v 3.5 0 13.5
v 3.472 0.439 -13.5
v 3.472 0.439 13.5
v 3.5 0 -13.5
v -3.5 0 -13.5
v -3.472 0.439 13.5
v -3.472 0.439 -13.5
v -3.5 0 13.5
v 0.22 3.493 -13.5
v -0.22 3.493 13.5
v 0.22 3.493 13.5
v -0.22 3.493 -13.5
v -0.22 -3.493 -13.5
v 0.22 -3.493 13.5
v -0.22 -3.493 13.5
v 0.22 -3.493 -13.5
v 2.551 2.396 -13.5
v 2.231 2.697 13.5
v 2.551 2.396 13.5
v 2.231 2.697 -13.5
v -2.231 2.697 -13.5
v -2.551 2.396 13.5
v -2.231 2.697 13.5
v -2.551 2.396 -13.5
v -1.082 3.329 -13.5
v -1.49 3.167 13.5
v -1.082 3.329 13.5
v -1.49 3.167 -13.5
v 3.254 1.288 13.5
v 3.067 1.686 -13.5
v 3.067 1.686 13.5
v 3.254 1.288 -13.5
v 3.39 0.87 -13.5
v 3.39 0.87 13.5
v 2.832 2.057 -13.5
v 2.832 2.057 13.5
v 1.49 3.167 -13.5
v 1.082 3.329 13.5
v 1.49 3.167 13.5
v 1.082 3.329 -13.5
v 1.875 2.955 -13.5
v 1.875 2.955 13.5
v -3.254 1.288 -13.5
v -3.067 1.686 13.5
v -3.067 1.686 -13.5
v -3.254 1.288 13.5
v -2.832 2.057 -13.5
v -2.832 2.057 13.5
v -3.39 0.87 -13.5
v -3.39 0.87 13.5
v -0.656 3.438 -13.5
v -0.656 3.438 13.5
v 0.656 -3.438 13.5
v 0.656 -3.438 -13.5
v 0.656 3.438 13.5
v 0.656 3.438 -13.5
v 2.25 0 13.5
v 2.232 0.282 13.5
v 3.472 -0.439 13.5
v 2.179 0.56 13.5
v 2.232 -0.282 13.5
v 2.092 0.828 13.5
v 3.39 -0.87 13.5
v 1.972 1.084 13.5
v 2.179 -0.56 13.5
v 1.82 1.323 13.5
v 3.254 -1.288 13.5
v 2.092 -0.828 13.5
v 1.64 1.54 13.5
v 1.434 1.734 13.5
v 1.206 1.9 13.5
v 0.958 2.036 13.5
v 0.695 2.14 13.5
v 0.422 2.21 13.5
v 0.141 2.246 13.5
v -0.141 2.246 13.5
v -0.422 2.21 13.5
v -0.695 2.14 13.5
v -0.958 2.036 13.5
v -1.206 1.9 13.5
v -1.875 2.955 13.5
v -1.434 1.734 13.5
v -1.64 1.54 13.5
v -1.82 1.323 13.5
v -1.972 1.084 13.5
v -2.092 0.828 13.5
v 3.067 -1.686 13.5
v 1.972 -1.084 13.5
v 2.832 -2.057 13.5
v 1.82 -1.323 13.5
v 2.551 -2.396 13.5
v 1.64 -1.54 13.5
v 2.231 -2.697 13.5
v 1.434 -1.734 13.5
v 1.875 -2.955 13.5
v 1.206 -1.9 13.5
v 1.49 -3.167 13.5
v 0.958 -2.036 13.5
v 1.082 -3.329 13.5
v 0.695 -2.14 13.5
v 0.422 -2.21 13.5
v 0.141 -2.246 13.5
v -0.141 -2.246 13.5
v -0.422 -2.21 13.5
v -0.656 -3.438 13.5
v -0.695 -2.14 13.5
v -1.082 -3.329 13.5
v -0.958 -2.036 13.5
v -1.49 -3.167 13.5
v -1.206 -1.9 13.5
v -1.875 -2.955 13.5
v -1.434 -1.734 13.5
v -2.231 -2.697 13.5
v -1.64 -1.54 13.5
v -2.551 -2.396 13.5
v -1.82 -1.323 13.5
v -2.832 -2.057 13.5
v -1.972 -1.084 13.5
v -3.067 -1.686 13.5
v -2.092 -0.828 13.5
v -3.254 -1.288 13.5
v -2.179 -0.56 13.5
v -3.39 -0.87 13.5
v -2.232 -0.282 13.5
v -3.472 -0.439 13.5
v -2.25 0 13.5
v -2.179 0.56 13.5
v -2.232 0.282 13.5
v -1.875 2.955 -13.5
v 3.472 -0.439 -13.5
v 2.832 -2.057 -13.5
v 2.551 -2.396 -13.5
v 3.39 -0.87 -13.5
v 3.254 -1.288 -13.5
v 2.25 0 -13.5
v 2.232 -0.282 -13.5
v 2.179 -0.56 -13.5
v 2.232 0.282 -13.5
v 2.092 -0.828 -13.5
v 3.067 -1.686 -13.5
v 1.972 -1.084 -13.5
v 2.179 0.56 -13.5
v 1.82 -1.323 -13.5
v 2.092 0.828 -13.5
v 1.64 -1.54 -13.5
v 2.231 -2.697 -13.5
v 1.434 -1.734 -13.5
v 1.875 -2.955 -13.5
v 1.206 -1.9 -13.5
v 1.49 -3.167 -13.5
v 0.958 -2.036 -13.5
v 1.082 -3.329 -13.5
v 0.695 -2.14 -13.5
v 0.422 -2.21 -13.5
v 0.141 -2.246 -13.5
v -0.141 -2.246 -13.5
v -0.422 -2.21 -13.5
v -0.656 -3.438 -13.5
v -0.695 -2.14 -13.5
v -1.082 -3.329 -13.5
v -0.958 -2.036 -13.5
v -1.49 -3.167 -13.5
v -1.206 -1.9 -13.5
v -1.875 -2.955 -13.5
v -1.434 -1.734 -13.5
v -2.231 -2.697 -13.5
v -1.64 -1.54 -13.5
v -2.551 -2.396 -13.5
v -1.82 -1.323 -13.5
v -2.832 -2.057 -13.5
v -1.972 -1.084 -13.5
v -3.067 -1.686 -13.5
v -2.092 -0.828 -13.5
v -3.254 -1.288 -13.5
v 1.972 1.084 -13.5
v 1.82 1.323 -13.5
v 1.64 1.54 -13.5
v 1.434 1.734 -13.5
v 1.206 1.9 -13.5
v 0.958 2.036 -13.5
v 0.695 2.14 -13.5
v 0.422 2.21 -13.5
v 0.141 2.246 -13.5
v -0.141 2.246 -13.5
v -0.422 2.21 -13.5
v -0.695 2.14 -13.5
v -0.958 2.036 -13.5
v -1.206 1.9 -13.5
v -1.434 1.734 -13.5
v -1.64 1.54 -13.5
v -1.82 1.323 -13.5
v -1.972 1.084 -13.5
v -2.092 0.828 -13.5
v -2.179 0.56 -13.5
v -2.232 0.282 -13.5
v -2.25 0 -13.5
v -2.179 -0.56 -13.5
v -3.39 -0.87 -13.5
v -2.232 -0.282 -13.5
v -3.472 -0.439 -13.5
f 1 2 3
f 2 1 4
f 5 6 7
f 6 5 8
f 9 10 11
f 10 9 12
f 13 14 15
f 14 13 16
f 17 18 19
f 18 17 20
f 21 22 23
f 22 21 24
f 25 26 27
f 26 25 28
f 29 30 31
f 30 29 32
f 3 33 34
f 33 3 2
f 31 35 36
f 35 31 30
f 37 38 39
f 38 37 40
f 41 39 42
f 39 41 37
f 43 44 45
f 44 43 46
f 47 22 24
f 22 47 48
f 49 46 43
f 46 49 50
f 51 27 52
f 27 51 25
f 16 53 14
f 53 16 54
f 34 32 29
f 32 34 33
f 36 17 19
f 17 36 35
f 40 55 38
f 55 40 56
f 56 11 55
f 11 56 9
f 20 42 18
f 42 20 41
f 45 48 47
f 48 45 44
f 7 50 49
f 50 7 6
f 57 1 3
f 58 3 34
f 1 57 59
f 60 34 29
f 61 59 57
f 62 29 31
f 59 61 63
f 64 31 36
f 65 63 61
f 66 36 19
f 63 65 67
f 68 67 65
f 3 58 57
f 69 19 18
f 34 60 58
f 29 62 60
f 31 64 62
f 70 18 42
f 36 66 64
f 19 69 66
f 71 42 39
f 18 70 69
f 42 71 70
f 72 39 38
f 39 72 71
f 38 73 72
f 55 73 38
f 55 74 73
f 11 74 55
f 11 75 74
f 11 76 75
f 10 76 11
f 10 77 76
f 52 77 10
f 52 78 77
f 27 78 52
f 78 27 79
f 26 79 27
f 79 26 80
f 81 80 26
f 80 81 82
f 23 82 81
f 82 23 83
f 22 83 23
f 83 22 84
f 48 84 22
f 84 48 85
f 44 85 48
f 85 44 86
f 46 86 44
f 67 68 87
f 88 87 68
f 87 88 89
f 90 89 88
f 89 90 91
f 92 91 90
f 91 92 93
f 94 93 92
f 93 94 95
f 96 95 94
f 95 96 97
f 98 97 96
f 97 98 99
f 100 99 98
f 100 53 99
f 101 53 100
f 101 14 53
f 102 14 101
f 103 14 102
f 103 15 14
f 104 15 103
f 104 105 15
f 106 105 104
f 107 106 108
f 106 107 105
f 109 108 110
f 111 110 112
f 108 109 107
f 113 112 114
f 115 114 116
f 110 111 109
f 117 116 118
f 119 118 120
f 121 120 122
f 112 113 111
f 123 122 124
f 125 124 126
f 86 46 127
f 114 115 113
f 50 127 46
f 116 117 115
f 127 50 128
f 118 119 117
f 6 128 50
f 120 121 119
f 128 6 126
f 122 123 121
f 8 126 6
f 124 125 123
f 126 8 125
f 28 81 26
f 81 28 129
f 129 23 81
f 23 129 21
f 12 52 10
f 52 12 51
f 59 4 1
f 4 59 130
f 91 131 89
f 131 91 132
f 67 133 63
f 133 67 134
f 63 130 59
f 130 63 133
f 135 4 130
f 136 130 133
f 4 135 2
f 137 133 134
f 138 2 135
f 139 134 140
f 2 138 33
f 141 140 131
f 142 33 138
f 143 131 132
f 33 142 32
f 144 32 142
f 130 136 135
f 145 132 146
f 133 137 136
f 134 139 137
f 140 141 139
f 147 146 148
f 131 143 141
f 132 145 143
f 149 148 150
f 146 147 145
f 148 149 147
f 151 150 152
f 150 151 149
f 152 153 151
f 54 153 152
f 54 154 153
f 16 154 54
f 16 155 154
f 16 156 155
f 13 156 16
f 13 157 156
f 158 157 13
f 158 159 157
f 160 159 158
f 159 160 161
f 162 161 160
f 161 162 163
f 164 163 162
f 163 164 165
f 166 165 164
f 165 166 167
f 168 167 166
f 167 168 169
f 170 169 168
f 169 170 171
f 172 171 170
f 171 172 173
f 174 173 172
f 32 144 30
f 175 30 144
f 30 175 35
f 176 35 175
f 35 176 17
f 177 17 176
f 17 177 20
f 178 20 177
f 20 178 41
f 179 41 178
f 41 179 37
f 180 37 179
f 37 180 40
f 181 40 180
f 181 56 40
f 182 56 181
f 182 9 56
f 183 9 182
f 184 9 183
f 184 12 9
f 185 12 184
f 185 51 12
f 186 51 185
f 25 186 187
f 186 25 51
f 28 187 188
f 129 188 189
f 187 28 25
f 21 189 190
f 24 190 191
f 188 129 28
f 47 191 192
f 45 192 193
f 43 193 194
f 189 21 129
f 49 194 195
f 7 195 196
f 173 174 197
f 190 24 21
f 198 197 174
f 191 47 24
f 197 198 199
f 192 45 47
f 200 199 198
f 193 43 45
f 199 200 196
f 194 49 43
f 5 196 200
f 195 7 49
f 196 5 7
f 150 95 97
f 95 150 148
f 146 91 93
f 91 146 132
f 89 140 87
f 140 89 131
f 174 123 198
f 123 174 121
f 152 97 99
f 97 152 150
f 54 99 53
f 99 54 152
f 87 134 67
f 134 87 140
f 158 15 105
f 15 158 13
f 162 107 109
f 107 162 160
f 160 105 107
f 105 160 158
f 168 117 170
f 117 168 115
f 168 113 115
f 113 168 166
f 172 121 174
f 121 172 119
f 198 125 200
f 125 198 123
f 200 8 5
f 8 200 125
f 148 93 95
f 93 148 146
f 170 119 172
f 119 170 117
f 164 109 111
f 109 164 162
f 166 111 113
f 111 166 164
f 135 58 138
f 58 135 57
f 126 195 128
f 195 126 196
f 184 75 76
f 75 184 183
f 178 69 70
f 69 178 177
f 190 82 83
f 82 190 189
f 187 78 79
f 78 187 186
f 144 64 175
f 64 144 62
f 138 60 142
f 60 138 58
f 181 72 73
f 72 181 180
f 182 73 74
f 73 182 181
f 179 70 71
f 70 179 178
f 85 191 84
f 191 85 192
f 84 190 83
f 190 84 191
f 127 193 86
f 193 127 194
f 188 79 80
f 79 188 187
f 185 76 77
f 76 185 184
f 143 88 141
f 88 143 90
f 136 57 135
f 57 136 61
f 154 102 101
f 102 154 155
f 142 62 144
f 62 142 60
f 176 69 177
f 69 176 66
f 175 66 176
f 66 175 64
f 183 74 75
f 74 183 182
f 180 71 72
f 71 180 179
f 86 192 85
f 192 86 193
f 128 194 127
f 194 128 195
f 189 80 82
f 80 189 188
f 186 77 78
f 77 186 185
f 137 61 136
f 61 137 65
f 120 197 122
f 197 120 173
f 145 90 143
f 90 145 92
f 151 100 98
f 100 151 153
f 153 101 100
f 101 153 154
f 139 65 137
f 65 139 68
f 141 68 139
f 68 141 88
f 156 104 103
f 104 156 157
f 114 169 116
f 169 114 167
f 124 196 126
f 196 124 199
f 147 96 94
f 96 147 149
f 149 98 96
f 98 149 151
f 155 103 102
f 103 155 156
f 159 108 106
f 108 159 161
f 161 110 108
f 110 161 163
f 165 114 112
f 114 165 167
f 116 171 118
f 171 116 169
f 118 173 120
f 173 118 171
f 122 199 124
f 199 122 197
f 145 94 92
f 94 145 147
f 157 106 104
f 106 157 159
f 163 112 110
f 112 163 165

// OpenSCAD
$fn = 50;


difference() {
	union() {
		translate(v = [0, 0, -13.5000000000]) {
			cylinder(h = 27, r = 3.5000000000);
		}
	}
	union() {
		translate(v = [0, 0, -100.0000000000]) {
			cylinder(h = 200, r = 2.2500000000);
		}
	}
}
